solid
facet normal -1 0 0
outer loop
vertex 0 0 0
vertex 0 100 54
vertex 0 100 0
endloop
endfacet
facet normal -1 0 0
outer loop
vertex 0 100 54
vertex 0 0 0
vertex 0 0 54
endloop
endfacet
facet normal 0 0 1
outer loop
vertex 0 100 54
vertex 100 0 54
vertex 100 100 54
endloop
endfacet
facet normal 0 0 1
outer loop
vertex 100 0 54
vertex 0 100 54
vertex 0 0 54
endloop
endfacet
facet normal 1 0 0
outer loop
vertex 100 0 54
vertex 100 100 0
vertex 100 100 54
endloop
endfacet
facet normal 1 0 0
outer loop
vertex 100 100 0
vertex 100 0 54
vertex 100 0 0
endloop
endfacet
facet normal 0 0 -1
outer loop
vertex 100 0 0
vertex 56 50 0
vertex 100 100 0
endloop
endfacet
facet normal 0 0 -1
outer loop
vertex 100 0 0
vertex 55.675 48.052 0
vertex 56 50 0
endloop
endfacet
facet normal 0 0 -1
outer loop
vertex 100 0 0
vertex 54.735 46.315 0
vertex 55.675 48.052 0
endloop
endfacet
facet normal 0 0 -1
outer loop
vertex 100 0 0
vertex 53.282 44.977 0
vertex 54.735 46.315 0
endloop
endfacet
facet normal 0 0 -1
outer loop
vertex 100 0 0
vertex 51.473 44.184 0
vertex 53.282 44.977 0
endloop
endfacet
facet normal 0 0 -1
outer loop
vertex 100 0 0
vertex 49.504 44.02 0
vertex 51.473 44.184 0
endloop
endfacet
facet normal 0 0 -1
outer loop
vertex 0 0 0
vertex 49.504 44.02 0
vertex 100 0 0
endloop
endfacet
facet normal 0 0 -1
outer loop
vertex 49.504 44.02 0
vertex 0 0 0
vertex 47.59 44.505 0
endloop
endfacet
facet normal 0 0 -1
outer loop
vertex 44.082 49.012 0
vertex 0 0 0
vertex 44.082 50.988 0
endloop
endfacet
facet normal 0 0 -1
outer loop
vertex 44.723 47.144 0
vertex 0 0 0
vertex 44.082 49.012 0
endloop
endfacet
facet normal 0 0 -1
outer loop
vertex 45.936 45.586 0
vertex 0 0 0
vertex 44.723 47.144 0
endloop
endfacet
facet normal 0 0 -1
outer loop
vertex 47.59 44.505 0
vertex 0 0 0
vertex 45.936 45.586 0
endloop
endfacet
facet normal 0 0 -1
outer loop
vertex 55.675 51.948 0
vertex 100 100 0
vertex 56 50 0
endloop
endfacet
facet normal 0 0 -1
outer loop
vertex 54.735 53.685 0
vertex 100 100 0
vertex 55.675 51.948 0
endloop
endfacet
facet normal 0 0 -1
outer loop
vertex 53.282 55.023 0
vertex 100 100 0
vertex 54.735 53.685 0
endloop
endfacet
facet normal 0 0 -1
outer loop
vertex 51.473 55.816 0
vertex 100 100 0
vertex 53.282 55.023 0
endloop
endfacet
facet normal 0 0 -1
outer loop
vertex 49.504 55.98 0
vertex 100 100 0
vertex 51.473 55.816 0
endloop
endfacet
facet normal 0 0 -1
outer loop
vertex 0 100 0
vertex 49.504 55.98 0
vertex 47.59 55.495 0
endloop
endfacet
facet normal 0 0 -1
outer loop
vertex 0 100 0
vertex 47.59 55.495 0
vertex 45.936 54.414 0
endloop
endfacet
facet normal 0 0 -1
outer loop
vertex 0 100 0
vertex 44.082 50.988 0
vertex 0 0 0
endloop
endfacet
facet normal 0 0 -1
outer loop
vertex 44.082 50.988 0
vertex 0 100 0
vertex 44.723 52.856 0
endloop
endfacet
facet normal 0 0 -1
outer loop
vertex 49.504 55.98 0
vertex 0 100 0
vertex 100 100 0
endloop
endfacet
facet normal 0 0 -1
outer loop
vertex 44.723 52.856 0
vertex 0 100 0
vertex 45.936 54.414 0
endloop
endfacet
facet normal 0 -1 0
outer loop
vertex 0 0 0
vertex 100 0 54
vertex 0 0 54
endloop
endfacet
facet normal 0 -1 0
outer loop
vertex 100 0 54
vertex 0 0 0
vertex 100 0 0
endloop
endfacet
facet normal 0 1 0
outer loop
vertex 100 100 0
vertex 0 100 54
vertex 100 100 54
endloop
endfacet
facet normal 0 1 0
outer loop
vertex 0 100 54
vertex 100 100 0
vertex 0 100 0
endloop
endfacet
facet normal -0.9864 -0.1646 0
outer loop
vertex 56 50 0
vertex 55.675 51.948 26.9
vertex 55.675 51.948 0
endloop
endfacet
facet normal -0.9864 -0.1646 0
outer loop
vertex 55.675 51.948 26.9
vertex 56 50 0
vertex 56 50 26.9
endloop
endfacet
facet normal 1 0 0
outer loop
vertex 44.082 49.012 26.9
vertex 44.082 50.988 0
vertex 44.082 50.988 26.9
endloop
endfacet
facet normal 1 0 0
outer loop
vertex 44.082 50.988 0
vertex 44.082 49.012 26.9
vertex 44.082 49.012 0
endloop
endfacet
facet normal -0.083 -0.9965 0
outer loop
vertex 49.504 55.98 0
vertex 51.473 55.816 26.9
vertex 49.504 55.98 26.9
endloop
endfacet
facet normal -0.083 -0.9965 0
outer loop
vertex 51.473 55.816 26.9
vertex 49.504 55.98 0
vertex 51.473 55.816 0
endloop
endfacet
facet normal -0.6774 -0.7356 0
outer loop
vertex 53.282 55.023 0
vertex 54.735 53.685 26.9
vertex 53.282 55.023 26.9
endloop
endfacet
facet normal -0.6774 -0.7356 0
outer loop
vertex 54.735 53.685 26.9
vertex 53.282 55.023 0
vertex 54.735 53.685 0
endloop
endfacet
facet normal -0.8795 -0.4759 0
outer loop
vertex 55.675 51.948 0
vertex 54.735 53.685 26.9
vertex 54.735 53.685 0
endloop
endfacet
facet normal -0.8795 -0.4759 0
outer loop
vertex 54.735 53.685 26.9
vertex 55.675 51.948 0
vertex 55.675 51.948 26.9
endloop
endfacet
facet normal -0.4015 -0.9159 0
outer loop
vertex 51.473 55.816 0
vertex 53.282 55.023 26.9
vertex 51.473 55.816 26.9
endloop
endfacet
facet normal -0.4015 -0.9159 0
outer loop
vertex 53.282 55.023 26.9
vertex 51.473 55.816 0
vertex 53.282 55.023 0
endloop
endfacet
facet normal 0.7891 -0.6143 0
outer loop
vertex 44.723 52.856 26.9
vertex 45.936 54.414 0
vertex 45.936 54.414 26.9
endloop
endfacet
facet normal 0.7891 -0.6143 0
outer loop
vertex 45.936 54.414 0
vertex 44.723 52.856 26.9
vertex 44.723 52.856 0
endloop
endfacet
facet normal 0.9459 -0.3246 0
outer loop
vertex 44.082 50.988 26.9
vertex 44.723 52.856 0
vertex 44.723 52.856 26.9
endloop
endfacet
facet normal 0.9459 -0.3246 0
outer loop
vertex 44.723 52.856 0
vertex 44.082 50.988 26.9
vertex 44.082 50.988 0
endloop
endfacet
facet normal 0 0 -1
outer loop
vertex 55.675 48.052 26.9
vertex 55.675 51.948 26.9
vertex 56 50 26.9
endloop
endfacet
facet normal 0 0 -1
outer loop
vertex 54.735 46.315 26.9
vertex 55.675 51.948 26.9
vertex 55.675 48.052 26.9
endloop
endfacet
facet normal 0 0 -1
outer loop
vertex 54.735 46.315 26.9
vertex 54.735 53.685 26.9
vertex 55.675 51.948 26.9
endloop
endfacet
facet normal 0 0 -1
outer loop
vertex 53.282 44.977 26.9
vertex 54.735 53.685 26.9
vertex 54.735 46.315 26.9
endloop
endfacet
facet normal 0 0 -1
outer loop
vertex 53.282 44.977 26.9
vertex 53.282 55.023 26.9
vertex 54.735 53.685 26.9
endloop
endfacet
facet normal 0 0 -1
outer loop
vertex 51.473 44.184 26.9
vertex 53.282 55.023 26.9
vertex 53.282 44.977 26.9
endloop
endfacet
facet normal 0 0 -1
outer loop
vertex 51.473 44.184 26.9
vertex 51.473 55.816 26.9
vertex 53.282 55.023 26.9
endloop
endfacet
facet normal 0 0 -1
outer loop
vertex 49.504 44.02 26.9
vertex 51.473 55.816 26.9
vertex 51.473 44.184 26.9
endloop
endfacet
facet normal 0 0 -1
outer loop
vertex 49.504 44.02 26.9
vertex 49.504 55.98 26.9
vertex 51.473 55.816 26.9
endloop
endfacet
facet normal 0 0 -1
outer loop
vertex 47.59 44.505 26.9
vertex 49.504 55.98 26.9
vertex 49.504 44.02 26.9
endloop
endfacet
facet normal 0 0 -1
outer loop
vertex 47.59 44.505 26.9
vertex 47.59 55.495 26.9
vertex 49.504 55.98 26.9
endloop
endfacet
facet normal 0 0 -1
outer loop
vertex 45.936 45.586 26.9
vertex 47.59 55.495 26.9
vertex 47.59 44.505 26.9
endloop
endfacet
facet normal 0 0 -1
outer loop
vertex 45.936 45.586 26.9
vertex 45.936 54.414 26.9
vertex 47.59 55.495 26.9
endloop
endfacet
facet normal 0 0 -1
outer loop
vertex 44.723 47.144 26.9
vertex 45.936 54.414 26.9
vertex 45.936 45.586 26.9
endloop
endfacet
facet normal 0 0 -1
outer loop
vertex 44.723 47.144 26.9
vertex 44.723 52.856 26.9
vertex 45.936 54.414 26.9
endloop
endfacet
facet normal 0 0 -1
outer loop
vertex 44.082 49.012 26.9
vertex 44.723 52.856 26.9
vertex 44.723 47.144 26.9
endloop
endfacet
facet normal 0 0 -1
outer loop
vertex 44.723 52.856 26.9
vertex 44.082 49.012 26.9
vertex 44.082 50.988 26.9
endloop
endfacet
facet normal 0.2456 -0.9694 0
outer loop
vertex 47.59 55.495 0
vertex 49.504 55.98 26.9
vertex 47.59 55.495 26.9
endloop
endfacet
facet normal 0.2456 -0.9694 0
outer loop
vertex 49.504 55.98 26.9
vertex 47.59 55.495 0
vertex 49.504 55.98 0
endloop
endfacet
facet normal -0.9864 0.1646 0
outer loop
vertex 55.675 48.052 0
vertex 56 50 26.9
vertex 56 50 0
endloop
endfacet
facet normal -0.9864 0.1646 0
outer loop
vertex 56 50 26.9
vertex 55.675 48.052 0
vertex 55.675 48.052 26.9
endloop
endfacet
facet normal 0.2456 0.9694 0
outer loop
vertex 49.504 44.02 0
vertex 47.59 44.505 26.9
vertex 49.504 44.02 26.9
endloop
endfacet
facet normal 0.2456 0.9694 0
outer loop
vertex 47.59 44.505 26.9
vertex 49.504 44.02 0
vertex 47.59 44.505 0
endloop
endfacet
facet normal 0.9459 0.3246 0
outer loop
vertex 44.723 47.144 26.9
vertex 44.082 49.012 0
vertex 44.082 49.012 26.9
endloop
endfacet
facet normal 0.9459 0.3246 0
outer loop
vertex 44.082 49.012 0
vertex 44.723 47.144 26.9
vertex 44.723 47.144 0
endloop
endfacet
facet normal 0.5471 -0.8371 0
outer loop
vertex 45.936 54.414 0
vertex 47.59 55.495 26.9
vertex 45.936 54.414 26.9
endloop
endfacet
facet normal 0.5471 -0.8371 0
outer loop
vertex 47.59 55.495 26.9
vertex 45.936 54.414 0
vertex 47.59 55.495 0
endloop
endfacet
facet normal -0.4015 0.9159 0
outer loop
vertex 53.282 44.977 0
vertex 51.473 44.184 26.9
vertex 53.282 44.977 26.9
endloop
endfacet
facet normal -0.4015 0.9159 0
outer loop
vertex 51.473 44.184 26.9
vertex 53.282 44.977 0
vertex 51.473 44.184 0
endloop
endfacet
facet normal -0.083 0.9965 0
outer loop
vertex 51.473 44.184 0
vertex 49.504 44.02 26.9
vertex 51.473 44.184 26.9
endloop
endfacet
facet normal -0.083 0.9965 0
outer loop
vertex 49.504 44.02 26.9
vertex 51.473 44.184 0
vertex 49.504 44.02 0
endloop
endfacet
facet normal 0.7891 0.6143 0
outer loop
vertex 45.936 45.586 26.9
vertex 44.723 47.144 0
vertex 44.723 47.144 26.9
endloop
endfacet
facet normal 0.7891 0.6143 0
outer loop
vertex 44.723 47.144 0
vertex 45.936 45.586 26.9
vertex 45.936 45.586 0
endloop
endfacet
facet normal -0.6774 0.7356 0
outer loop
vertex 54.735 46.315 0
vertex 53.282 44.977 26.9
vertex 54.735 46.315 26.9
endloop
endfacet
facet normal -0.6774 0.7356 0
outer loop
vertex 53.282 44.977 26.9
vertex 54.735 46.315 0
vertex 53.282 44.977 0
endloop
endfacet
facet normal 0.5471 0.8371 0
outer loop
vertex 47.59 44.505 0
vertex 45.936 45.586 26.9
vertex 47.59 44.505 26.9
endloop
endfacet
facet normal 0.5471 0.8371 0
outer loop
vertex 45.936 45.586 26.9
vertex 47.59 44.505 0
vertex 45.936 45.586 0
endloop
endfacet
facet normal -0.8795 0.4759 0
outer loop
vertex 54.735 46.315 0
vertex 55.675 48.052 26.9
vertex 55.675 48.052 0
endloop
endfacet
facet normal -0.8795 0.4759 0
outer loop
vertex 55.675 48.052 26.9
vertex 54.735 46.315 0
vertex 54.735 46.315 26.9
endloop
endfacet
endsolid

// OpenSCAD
difference() {
  cube([100, 100, 54]);
  translate([50, 50, -0.1]) cylinder(h=54, r=6, center=true);
}
